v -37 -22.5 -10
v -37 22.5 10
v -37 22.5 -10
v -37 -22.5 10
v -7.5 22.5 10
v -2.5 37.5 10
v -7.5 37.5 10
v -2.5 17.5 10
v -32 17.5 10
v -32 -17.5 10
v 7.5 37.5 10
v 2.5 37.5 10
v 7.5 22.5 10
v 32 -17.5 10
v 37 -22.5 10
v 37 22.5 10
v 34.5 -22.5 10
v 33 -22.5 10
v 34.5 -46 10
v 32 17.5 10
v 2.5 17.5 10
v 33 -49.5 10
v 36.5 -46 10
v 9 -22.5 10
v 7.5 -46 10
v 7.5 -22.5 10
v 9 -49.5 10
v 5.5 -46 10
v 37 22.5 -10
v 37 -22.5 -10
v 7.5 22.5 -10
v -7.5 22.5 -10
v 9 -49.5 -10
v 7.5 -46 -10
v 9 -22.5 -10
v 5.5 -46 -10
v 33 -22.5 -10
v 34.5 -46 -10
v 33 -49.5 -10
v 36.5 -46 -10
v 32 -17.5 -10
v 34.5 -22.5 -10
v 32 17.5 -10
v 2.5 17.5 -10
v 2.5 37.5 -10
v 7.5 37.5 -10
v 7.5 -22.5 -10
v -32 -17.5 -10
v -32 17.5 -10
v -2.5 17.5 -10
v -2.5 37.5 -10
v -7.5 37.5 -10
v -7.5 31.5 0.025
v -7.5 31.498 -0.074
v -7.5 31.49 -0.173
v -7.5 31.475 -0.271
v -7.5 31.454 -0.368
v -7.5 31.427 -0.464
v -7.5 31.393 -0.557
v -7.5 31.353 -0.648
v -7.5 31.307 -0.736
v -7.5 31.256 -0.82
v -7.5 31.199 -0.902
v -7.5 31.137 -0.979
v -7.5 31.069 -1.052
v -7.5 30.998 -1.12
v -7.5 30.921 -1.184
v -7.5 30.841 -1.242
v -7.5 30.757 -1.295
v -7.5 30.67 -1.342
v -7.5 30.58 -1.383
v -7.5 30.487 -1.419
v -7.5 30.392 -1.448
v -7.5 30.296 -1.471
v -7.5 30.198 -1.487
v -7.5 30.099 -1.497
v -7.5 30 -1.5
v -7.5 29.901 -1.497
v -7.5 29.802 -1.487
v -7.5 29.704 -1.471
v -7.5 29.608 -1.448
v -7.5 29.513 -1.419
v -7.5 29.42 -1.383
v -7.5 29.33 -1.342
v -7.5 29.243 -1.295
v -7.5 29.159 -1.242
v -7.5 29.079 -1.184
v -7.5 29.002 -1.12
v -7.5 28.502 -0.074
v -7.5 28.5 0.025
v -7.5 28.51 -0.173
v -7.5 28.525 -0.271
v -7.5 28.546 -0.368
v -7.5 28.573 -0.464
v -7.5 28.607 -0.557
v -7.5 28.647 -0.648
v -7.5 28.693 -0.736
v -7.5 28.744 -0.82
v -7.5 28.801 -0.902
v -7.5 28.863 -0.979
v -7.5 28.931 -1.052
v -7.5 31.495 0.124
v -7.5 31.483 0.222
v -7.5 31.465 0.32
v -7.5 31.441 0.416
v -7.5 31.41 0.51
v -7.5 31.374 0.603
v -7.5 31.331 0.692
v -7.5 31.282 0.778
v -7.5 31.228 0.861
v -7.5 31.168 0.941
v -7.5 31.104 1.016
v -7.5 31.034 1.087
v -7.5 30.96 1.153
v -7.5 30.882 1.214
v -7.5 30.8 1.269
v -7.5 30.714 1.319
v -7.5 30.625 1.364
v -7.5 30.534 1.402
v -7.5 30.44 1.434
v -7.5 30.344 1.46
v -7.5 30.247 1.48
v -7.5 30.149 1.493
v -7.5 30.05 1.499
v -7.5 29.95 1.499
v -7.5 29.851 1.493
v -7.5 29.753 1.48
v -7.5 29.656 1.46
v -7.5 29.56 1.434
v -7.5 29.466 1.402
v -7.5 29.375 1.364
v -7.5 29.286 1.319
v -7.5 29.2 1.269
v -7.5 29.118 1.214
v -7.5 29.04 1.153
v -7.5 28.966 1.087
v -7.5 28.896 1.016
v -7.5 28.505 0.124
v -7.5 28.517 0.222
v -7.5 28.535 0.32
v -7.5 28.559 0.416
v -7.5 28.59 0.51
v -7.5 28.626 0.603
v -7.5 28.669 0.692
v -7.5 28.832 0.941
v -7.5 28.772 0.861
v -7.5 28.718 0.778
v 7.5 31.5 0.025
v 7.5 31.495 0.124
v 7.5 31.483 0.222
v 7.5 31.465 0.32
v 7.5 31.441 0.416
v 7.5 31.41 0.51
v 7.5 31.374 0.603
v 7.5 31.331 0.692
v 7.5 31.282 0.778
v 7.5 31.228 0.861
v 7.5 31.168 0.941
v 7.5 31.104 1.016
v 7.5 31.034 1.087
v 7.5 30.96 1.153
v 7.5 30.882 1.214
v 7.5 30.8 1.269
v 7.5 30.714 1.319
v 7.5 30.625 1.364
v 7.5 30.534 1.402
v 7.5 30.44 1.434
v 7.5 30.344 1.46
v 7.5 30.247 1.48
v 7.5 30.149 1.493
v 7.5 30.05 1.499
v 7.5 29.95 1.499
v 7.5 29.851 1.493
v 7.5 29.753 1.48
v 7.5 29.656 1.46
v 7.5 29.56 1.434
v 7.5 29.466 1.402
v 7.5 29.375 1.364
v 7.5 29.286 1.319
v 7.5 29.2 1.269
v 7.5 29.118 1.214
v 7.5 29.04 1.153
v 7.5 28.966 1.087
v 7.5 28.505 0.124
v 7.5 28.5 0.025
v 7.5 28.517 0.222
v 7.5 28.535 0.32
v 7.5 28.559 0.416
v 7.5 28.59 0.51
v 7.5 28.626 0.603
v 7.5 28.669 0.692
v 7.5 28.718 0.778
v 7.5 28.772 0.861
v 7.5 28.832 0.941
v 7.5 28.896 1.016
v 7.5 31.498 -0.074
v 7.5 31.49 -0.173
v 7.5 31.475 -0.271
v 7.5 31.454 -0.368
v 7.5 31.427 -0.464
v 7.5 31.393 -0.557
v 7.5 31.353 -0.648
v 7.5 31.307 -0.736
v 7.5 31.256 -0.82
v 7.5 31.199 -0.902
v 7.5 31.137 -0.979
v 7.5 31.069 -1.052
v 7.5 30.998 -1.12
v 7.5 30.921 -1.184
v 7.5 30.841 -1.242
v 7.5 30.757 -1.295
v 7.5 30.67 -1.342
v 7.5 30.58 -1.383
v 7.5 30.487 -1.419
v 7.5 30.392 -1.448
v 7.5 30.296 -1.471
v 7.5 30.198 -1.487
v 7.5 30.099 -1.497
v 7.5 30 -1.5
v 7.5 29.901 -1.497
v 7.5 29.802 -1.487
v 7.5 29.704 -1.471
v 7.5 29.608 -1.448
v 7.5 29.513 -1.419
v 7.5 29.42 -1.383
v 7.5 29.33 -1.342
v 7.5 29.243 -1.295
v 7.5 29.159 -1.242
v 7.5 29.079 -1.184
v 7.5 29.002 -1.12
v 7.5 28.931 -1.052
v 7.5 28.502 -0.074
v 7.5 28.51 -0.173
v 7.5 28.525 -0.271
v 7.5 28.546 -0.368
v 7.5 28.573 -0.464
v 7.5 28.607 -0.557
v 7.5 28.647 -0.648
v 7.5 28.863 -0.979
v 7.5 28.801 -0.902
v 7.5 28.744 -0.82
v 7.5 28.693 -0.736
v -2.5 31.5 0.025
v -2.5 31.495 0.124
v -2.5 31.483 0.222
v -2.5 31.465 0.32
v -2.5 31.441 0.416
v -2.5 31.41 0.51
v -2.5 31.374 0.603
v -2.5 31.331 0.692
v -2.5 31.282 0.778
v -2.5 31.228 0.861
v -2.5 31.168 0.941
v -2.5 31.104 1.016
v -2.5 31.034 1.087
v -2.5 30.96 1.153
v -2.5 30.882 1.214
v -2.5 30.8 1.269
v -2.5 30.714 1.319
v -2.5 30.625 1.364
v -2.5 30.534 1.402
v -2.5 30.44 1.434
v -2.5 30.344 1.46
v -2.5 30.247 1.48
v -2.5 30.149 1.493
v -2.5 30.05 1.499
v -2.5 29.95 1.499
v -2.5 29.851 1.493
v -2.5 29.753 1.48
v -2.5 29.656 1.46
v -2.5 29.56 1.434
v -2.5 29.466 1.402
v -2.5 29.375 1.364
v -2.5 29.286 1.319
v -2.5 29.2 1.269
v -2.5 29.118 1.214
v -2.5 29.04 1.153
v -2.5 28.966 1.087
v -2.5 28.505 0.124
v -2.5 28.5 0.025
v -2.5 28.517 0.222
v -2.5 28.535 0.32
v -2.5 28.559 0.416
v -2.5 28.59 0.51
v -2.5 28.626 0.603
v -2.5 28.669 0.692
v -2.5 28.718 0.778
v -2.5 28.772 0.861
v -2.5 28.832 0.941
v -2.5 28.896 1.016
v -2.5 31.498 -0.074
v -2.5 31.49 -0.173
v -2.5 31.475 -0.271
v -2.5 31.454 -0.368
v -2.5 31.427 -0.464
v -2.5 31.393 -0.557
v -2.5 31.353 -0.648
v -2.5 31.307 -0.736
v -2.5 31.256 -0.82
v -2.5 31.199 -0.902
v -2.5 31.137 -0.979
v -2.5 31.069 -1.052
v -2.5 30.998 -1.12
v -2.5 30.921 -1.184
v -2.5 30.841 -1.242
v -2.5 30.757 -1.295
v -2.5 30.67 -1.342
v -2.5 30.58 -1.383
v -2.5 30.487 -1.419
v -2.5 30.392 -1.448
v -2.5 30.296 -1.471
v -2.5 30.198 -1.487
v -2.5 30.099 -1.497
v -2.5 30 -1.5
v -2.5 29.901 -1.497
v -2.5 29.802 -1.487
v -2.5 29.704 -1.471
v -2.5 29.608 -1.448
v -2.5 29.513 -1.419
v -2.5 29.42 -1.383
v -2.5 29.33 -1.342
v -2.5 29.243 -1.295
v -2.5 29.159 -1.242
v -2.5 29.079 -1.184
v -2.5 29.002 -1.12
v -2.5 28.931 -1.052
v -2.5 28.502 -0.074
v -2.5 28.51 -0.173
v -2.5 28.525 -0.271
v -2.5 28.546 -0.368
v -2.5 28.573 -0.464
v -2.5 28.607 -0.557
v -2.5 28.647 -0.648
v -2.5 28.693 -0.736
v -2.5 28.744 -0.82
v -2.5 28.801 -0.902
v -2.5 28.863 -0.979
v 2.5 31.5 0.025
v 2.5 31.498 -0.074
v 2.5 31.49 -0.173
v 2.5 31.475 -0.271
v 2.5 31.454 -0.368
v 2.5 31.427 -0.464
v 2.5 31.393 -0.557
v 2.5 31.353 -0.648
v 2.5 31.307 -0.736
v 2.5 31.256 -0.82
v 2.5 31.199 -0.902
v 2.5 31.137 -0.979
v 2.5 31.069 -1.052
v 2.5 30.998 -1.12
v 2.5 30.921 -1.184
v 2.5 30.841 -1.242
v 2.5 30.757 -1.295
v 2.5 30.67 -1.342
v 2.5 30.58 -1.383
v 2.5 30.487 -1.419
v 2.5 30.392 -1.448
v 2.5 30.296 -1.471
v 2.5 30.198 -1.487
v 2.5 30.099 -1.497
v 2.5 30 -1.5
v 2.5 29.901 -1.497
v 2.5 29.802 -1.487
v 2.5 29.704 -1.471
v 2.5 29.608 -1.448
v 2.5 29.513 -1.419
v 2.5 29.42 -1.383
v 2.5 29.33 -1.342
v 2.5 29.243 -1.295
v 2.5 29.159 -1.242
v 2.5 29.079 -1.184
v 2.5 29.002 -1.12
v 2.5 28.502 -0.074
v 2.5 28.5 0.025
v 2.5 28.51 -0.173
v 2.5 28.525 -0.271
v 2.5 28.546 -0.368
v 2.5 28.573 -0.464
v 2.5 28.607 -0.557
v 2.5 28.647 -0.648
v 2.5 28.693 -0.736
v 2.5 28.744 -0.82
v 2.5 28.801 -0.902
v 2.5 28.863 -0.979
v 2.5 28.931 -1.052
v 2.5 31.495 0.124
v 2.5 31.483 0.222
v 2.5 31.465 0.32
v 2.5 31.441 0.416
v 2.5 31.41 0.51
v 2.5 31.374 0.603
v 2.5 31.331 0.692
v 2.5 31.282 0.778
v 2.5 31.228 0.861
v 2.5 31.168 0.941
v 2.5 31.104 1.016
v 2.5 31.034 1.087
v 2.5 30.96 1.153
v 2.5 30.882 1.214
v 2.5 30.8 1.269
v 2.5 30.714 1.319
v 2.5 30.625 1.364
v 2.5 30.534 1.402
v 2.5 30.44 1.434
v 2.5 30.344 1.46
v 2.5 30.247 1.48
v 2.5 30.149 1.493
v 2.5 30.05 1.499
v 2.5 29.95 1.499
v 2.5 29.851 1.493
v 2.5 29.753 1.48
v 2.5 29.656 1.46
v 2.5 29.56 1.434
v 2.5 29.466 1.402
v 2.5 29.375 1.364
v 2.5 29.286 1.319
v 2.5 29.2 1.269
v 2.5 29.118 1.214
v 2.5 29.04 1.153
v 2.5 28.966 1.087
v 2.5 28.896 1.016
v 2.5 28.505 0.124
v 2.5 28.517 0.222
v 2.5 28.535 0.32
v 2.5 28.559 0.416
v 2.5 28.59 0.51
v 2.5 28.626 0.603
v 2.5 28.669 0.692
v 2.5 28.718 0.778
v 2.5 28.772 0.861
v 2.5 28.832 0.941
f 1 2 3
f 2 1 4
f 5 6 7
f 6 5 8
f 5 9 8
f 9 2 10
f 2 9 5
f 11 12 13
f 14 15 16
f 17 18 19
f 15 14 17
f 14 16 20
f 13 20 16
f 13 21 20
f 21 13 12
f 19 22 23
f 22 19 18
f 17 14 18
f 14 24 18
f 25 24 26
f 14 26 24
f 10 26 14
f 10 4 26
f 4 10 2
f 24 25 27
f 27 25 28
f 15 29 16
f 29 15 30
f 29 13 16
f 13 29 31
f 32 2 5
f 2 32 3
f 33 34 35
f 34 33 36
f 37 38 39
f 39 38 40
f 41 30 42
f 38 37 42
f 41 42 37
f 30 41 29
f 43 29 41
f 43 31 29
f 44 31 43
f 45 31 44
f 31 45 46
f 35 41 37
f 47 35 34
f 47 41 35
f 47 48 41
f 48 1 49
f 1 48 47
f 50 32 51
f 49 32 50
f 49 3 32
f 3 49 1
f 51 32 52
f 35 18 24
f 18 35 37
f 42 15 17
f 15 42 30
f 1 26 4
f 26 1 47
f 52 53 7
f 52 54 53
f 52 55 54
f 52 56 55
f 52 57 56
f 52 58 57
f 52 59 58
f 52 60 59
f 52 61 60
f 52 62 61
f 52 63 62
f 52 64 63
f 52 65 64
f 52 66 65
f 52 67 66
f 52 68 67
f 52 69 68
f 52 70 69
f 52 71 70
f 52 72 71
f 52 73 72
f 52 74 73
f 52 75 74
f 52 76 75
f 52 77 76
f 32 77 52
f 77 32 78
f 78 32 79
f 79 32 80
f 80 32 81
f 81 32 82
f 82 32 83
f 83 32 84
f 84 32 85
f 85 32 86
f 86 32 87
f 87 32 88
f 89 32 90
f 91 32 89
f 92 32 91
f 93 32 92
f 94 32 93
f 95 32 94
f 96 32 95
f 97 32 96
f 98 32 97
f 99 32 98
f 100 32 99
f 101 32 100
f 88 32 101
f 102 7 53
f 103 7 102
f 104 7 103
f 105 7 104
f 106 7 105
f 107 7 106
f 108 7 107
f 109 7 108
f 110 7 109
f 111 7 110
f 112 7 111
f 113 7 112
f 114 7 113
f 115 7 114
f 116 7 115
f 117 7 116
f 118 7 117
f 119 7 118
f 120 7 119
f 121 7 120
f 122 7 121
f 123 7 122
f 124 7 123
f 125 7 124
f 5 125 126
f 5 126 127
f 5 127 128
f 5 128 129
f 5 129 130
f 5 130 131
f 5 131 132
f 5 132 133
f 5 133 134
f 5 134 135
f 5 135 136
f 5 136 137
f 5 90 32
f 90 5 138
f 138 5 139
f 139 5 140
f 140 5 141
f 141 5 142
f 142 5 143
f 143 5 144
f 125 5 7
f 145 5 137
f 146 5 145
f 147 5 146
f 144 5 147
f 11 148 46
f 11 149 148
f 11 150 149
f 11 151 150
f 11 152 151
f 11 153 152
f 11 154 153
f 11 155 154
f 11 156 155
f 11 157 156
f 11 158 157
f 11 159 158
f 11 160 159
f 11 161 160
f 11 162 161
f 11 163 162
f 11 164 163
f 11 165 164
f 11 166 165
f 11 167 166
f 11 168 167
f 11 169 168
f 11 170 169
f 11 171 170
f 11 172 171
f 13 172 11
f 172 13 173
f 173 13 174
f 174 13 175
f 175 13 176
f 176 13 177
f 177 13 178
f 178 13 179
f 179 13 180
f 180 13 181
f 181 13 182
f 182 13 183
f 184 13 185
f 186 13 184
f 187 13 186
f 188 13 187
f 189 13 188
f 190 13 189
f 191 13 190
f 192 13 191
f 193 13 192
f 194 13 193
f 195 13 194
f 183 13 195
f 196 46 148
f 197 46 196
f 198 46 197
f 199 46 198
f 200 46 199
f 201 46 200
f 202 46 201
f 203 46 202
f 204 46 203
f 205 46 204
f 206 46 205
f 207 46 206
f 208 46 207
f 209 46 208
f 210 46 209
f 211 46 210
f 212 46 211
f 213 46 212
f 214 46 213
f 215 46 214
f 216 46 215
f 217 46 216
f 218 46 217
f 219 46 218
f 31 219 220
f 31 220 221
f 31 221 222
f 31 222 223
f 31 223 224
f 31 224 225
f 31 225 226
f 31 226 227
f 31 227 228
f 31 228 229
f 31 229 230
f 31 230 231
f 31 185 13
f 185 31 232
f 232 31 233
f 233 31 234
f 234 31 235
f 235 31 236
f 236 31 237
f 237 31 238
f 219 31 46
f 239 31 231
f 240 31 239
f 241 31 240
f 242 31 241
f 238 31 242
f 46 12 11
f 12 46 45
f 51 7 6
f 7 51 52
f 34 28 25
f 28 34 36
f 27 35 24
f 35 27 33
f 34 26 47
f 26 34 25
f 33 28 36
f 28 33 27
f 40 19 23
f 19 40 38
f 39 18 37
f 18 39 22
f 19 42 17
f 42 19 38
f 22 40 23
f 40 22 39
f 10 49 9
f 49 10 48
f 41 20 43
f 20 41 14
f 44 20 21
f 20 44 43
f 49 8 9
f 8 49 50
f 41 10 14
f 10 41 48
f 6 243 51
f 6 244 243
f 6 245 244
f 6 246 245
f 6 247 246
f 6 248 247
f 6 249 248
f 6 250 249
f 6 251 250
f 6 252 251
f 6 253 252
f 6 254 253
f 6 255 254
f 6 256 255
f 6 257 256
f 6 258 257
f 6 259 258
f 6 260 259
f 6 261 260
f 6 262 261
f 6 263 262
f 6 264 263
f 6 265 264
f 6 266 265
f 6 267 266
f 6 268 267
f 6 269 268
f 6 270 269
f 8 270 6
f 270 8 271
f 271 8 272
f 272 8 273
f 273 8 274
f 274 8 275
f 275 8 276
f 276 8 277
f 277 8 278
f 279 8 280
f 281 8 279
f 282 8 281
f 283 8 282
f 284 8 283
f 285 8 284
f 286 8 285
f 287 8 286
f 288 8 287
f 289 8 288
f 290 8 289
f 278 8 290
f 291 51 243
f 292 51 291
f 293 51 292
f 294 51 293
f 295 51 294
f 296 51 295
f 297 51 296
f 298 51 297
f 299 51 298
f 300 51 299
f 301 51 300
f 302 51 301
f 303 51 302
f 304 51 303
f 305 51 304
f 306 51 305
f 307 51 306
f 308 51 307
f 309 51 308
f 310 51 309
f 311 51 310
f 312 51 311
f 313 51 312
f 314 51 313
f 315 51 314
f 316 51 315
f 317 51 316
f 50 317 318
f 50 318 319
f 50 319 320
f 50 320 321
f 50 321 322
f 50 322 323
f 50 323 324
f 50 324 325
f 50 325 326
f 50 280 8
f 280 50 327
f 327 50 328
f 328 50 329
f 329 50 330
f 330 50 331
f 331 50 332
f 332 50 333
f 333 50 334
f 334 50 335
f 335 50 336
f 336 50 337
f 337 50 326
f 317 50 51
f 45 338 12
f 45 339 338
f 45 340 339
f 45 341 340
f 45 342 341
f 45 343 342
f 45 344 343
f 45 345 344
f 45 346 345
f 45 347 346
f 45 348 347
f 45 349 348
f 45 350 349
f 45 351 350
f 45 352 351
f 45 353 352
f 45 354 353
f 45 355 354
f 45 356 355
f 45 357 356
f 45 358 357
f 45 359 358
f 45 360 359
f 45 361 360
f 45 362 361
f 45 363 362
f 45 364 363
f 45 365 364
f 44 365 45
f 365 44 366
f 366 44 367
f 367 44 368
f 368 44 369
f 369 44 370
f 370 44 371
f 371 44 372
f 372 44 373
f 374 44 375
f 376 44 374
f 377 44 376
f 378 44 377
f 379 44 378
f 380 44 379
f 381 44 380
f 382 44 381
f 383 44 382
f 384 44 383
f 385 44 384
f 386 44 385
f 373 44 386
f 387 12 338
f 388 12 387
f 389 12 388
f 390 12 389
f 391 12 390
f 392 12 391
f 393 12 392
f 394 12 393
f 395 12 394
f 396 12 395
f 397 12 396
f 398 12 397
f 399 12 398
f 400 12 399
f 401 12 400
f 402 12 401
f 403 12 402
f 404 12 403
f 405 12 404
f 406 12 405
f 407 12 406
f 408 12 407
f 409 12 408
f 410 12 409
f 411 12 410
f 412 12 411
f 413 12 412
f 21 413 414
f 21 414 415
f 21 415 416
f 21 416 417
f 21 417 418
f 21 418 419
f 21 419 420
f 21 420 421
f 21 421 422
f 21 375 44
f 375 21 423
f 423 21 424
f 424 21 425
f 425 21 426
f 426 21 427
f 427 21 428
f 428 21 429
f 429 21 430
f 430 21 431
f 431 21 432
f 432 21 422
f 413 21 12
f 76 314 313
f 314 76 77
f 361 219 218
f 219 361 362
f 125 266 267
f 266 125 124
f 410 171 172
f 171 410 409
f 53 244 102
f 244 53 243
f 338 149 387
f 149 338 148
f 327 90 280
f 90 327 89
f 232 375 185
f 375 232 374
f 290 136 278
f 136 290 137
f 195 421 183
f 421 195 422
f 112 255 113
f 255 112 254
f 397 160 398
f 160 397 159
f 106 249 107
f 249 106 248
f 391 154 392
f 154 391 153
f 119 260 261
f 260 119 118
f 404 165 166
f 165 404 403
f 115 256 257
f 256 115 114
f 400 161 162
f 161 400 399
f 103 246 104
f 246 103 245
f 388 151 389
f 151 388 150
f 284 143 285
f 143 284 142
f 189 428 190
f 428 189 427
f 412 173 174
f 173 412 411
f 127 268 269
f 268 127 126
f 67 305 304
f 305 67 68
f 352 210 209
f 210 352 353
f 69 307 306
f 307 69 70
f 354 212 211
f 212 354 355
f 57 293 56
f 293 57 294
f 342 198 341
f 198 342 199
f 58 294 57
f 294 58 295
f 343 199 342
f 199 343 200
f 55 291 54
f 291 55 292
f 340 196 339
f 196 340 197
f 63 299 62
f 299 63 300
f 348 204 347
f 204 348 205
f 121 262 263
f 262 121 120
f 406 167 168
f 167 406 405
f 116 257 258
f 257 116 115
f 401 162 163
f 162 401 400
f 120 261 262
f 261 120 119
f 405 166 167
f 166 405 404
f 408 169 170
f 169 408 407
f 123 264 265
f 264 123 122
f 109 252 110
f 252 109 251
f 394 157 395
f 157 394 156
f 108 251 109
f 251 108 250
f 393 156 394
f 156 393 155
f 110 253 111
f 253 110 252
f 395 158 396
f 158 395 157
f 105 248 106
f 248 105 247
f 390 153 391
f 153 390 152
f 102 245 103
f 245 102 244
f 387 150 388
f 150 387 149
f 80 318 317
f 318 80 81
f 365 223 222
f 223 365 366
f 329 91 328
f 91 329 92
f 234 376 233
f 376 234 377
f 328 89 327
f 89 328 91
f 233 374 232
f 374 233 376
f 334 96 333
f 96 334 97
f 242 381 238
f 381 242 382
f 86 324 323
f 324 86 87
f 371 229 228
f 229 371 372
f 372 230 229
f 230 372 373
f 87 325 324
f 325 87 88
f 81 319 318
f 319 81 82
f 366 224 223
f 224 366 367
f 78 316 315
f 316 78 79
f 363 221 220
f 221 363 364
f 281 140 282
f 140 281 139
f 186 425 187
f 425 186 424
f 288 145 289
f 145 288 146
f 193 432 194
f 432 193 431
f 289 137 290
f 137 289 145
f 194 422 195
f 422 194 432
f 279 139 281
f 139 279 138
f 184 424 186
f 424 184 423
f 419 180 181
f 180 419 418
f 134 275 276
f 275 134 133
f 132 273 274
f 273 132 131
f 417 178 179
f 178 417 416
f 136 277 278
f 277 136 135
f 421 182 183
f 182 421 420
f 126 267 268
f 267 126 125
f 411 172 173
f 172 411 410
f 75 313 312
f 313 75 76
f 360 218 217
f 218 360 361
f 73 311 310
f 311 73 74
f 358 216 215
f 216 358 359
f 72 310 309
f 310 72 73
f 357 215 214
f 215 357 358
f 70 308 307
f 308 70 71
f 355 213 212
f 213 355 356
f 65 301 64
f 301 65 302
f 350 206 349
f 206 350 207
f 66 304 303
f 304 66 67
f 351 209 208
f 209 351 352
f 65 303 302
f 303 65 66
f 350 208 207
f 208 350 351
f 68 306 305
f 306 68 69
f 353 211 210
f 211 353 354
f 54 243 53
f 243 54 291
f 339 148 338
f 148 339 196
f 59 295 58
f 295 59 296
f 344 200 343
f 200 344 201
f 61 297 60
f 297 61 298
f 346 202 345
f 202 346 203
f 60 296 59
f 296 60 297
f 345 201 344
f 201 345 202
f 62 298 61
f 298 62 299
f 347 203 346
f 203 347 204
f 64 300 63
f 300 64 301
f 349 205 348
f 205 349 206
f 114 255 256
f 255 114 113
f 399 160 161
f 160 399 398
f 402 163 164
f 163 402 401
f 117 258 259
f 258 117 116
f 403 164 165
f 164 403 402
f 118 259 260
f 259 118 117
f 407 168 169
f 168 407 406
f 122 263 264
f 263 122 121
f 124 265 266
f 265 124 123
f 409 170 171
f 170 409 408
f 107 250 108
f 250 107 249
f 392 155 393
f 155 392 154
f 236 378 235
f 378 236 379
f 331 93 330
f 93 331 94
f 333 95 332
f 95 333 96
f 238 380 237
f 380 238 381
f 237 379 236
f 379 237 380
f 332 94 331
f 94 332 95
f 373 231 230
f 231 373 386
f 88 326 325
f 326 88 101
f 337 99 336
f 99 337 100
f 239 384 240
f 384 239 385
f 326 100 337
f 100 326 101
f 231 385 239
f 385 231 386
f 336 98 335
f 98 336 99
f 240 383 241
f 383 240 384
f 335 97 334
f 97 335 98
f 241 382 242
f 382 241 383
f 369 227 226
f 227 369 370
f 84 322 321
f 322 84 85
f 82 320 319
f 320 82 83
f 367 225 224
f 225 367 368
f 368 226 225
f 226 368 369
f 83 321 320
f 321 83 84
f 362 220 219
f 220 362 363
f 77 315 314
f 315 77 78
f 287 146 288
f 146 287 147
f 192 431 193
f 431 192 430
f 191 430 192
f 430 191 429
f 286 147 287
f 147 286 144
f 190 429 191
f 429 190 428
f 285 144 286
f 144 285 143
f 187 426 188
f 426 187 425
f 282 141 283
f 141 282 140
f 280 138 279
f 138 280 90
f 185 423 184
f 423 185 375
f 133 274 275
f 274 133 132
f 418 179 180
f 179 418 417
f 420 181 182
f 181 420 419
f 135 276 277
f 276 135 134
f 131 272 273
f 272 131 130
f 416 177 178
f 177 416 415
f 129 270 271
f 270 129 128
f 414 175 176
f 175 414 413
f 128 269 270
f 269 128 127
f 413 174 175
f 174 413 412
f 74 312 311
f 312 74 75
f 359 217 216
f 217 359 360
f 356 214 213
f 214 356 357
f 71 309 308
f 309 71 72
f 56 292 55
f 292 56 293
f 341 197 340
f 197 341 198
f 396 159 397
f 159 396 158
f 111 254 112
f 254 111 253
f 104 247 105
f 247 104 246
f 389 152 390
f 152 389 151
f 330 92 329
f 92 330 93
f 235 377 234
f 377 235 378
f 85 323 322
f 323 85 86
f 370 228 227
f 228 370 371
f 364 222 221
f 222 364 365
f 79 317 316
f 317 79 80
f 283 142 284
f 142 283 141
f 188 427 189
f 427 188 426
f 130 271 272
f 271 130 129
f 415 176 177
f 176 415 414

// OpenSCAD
// RaspberryPiMount.scad: Mount for Raspberry Pi to Ender 3 Neo in OpenSCAD
// Copyright (C) 2022  Jeremy Mynhier
//
// This program is free software: you can redistribute it and/or modify
// it under the terms of the GNU General Public License as published by
// the Free Software Foundation, either version 3 of the License, or
// (at your option) any later version.
//
// This program is distributed in the hope that it will be useful,
// but WITHOUT ANY WARRANTY; without even the implied warranty of
// MERCHANTABILITY or FITNESS FOR A PARTICULAR PURPOSE.  See the
// GNU General Public License for more details.
//
// You should have received a copy of the GNU General Public License
// along with this program.  If not, see <https://www.gnu.org/licenses/>.

// render variables
$fa = 1;  // $fa minimum angle = 360/$fa
$fs = 0.1;  // $fs minimum size of fragment, set to print size/2

rpiLength = 95;
rpiWidth = 64;
rpiHeight = 35;
fasteningScrewHoleDiameter = 4;
basePlateThickness = 5;
basePlateWidth = 20;
snapWidth = 3.5;
snapMountThickness = 1.5;
snapMountLength = 27;
railWidth = 27;

render() {
    makeMount(rpiWidth, rpiHeight, basePlateThickness, basePlateWidth);
    translate([rpiWidth / 2 - basePlateThickness / 2 - snapWidth * 2, - rpiHeight / 2 - basePlateThickness +
        snapMountThickness, 0])
        rotate([0, 0, 180])
            makeRailAttachment(snapWidth, snapMountLength, snapMountThickness, basePlateWidth, railWidth);
}


module makeMount(width, height, thickness, plateWidth) {
    difference() {
        union() {
            cube([width + 2 * thickness, height + 2 * thickness, plateWidth], center = true);
            translate([0, (height + plateWidth) / 2, 0])
                cube([3 * thickness, plateWidth, plateWidth], center = true);
        }
        union() {
            cube([width, height, plateWidth], center = true);
            translate([0, (height + plateWidth) / 2, 0])
                cube([thickness, plateWidth, plateWidth], center = true);
            translate([0, (height + plateWidth + thickness) / 2, 0])
                rotate([0, 90, 0])
                    cylinder(d = 3, h = 3 * thickness, center = true);
        }
    }
}

module makeRailAttachment(snapWidth, snapLength, snapThickness, height, railWidth) {
    translate([railWidth / 2, snapLength + snapThickness, - height / 2])
        rotate([0, 0, 270])
            union() {
                makeRailSnap(snapWidth, snapLength, snapThickness, height);
                translate([0, 2 * snapThickness - railWidth, height])
                    rotate([180, 0, 0])
                        makeRailSnap(snapWidth, snapLength, snapThickness, height);
                translate([snapLength, - railWidth + snapThickness, 0])
                    cube([snapThickness * 2, railWidth, height]);
            }
}

module makeRailSnap(snapWidth, snapLength, snapThickness, height) {
    difference() {
        union() {
            cube([snapWidth, snapWidth, height]);
            cube([snapLength, snapThickness, height]);
        }
        rotate([0, 0, 45])
            cube([snapWidth * 2, snapWidth * 2, height]);
    }
}
